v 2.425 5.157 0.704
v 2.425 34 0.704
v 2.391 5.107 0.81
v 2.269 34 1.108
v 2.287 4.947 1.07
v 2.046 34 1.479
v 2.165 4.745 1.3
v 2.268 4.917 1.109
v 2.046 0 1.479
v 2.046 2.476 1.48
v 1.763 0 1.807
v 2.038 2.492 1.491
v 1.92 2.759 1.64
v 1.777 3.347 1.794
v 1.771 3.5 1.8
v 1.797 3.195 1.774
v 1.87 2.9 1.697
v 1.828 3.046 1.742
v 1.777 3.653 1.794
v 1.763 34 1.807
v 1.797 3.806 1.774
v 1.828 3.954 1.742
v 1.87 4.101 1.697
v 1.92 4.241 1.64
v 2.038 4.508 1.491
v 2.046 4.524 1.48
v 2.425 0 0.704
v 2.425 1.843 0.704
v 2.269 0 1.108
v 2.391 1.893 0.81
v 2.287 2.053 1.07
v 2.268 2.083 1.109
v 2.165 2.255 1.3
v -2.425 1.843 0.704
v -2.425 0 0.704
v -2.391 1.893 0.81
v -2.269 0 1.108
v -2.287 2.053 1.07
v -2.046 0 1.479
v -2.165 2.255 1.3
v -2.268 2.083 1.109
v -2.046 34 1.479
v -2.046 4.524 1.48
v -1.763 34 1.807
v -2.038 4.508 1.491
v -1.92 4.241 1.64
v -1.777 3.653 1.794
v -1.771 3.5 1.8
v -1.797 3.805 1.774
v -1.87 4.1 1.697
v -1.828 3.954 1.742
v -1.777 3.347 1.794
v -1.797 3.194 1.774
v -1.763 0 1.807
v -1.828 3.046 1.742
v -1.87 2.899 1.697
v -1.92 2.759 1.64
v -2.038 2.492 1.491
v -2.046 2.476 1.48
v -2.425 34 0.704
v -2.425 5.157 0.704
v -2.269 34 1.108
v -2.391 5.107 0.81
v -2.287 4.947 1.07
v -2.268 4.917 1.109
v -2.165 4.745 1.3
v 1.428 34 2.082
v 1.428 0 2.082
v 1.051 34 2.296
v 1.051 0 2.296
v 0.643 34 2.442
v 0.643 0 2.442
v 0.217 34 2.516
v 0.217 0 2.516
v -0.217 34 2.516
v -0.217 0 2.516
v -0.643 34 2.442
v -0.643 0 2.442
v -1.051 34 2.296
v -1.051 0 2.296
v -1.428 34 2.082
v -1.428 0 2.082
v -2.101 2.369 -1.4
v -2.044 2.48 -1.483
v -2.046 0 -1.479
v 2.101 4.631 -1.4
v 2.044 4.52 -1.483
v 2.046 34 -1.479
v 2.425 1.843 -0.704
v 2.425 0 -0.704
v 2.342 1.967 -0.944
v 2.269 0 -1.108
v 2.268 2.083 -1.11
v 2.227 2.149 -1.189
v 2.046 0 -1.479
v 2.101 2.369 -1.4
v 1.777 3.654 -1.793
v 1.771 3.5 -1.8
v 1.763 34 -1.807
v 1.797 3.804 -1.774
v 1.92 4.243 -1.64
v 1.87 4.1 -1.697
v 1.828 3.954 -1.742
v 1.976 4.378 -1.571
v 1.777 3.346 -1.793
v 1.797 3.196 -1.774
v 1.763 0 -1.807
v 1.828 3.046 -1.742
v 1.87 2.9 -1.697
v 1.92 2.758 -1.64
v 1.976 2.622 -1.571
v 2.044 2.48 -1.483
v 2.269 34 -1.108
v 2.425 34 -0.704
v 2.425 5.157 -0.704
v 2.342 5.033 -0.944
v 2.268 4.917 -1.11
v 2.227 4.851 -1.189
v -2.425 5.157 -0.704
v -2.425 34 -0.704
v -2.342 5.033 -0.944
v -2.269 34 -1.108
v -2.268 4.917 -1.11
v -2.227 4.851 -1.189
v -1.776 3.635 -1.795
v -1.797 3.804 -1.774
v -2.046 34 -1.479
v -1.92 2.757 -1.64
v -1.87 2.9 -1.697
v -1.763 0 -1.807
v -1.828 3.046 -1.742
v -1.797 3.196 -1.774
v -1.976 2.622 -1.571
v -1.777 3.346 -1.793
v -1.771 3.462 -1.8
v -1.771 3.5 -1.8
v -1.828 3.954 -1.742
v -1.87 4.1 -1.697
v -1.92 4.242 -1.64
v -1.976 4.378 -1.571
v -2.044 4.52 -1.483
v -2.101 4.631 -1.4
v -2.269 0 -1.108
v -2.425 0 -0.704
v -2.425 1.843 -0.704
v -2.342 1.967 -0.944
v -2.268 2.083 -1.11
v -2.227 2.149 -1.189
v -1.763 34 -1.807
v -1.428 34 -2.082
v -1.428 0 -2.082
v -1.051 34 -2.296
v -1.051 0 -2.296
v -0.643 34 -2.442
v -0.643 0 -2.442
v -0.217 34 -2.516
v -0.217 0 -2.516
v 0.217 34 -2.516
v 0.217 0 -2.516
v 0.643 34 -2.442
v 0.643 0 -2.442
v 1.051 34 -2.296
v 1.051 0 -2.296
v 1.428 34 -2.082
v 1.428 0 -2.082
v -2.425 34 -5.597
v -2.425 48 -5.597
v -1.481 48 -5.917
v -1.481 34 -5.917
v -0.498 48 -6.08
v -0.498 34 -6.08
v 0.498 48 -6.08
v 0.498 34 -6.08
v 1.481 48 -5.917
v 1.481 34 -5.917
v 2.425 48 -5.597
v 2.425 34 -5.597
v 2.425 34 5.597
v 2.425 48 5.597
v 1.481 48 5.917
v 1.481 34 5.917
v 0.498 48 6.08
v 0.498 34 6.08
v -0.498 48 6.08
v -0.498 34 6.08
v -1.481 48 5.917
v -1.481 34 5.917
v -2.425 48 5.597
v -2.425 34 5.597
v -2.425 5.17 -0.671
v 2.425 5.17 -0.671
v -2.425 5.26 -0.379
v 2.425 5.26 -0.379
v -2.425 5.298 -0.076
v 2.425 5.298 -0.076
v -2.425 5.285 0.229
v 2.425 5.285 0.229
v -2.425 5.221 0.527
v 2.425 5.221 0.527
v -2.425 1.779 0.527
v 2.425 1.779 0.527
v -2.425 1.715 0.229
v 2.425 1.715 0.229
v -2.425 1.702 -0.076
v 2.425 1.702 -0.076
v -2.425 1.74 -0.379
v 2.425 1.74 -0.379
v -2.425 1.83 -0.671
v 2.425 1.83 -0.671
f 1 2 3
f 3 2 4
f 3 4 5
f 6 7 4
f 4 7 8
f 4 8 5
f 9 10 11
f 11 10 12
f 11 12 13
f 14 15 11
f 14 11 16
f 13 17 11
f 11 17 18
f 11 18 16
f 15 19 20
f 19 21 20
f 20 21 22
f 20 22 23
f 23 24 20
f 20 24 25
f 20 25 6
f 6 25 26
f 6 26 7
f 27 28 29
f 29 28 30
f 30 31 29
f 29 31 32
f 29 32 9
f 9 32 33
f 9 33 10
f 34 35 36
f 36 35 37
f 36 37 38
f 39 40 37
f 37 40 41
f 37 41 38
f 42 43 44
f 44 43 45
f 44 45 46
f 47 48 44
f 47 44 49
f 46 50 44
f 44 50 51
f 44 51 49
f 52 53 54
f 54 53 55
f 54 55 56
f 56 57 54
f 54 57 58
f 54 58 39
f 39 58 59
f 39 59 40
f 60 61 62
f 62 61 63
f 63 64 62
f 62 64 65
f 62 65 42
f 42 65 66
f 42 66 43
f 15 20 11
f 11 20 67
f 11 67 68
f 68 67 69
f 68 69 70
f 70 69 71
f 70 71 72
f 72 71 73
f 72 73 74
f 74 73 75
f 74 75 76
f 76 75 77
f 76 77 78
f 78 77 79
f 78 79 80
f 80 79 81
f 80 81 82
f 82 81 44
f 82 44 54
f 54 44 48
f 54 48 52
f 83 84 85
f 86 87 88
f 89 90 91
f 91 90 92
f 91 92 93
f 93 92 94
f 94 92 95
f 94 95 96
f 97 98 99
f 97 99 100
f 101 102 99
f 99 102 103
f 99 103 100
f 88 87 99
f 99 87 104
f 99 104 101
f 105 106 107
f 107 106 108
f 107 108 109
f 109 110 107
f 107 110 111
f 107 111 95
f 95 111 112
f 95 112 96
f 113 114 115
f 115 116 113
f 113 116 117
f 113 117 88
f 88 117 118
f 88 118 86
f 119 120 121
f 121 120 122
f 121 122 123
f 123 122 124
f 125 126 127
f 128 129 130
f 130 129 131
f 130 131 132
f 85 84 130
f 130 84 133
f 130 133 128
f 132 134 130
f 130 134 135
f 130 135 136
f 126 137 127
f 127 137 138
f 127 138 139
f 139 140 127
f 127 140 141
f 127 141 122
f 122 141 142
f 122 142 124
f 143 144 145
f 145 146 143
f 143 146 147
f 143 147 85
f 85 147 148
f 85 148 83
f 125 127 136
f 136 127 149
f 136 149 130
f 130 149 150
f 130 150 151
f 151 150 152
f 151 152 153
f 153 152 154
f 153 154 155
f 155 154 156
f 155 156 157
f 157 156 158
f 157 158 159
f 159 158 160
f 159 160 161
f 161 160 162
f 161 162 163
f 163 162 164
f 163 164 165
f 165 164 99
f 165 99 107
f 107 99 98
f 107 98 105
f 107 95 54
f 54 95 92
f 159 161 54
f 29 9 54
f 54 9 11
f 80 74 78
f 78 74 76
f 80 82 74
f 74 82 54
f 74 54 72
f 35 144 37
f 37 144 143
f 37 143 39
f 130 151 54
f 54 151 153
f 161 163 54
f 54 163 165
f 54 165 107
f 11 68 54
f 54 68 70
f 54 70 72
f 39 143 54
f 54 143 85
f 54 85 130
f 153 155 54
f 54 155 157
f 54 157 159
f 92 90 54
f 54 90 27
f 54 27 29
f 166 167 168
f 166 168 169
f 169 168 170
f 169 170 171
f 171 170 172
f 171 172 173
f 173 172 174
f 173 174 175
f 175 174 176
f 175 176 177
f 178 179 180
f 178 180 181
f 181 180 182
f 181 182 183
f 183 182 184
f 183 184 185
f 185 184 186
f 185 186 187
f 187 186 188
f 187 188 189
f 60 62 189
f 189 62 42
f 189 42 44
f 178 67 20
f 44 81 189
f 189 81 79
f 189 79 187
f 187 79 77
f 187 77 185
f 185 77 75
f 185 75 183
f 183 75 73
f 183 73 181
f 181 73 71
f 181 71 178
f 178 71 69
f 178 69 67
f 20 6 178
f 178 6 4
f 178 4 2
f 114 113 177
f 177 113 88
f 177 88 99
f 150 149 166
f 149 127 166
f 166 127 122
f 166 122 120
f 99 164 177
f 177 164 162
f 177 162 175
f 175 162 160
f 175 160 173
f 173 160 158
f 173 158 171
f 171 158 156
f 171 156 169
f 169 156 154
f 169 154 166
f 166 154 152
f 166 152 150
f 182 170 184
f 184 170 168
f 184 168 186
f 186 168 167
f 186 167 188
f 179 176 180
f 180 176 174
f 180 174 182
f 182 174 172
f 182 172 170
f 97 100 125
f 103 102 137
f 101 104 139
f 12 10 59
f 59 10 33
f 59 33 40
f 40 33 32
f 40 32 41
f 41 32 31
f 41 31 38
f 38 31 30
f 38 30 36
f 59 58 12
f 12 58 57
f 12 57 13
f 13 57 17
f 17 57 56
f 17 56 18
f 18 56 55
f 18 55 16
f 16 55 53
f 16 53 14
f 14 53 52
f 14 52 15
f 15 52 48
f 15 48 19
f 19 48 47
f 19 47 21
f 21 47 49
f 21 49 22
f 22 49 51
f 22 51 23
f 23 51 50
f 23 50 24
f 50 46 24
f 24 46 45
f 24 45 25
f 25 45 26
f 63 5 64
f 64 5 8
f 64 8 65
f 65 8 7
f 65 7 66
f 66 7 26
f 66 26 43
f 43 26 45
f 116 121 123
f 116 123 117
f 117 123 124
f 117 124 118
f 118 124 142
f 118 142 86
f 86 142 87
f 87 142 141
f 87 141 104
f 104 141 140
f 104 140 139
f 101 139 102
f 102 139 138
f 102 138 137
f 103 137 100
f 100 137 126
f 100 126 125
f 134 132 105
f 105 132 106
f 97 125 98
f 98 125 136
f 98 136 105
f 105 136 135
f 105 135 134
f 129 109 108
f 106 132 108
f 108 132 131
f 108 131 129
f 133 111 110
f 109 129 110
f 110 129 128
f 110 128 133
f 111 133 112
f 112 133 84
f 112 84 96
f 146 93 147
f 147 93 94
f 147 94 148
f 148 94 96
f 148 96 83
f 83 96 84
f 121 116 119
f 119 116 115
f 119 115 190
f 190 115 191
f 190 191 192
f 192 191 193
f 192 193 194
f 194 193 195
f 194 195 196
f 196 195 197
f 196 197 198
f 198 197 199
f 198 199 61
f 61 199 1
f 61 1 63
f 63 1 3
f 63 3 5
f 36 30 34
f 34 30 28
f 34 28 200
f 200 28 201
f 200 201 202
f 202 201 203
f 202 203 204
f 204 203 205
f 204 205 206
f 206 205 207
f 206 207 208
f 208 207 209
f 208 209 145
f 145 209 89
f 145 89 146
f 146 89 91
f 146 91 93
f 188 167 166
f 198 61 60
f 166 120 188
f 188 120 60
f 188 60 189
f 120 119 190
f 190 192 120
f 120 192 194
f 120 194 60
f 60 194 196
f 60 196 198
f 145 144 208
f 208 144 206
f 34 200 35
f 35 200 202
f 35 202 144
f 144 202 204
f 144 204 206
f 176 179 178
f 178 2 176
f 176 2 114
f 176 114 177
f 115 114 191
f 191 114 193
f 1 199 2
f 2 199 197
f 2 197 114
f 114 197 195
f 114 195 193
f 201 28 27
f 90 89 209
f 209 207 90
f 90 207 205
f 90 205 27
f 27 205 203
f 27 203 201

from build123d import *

# Parameters (mm, degrees)
SKETCH1_R               = 2.525
BOSS_EXTRUDE1_DEPTH     = 48
SKETCH2_R               = 6.1
BOSS_EXTRUDE2_DEPTH     = 14
SKETCH3_R               = 1.8
CUT_EXTRUDE1_DEPTH      = 7.1
CUT_EXTRUDE1_DEPTH_BACK = 7.1
SKETCH4_OUTSIDE_W       = 24.402
SKETCH4_OUTSIDE_H       = 24.402
SKETCH4_OUTSIDE_W_2     = 4.85
SKETCH4_OUTSIDE_H_2     = 23.377611606
CUT_EXTRUDE4_DEPTH      = 49


with BuildPart() as part:
    # Sketch1 → Boss-Extrude1 (new body)
    with BuildSketch(Plane(origin=(0, 0, 0), x_dir=(1, 0, 0), z_dir=(0, 1, 0))):
        Circle(SKETCH1_R)
    extrude(amount=BOSS_EXTRUDE1_DEPTH)

    # Sketch2 → Boss-Extrude2 (add)
    with BuildSketch(Plane(origin=(0, 48, 0), x_dir=(1, 0, 0), z_dir=(0, 1, 0))):
        Circle(SKETCH2_R)
    extrude(amount=-BOSS_EXTRUDE2_DEPTH)

    # Sketch3 → Cut-Extrude1 (cut, two sides)
    with BuildSketch(Plane(origin=(0, 0, 0), x_dir=(0, 0, -1), z_dir=(1, 0, 0))) as cut_extrude1_sk:
        with Locations((0, 3.5)):
            Circle(SKETCH3_R)
    extrude(amount=CUT_EXTRUDE1_DEPTH, mode=Mode.SUBTRACT)
    extrude(cut_extrude1_sk.sketch, amount=-CUT_EXTRUDE1_DEPTH_BACK, mode=Mode.SUBTRACT)

    # Sketch4 outside → Cut-Extrude4 (cut, through all)
    with BuildSketch(Plane(origin=(0, 0, 0), x_dir=(1, 0, 0), z_dir=(0, 1, 0))):
        Rectangle(SKETCH4_OUTSIDE_W, SKETCH4_OUTSIDE_H)
        Rectangle(SKETCH4_OUTSIDE_W_2, SKETCH4_OUTSIDE_H_2, mode=Mode.SUBTRACT)
    extrude(amount=CUT_EXTRUDE4_DEPTH, mode=Mode.SUBTRACT)


solid = part.part
